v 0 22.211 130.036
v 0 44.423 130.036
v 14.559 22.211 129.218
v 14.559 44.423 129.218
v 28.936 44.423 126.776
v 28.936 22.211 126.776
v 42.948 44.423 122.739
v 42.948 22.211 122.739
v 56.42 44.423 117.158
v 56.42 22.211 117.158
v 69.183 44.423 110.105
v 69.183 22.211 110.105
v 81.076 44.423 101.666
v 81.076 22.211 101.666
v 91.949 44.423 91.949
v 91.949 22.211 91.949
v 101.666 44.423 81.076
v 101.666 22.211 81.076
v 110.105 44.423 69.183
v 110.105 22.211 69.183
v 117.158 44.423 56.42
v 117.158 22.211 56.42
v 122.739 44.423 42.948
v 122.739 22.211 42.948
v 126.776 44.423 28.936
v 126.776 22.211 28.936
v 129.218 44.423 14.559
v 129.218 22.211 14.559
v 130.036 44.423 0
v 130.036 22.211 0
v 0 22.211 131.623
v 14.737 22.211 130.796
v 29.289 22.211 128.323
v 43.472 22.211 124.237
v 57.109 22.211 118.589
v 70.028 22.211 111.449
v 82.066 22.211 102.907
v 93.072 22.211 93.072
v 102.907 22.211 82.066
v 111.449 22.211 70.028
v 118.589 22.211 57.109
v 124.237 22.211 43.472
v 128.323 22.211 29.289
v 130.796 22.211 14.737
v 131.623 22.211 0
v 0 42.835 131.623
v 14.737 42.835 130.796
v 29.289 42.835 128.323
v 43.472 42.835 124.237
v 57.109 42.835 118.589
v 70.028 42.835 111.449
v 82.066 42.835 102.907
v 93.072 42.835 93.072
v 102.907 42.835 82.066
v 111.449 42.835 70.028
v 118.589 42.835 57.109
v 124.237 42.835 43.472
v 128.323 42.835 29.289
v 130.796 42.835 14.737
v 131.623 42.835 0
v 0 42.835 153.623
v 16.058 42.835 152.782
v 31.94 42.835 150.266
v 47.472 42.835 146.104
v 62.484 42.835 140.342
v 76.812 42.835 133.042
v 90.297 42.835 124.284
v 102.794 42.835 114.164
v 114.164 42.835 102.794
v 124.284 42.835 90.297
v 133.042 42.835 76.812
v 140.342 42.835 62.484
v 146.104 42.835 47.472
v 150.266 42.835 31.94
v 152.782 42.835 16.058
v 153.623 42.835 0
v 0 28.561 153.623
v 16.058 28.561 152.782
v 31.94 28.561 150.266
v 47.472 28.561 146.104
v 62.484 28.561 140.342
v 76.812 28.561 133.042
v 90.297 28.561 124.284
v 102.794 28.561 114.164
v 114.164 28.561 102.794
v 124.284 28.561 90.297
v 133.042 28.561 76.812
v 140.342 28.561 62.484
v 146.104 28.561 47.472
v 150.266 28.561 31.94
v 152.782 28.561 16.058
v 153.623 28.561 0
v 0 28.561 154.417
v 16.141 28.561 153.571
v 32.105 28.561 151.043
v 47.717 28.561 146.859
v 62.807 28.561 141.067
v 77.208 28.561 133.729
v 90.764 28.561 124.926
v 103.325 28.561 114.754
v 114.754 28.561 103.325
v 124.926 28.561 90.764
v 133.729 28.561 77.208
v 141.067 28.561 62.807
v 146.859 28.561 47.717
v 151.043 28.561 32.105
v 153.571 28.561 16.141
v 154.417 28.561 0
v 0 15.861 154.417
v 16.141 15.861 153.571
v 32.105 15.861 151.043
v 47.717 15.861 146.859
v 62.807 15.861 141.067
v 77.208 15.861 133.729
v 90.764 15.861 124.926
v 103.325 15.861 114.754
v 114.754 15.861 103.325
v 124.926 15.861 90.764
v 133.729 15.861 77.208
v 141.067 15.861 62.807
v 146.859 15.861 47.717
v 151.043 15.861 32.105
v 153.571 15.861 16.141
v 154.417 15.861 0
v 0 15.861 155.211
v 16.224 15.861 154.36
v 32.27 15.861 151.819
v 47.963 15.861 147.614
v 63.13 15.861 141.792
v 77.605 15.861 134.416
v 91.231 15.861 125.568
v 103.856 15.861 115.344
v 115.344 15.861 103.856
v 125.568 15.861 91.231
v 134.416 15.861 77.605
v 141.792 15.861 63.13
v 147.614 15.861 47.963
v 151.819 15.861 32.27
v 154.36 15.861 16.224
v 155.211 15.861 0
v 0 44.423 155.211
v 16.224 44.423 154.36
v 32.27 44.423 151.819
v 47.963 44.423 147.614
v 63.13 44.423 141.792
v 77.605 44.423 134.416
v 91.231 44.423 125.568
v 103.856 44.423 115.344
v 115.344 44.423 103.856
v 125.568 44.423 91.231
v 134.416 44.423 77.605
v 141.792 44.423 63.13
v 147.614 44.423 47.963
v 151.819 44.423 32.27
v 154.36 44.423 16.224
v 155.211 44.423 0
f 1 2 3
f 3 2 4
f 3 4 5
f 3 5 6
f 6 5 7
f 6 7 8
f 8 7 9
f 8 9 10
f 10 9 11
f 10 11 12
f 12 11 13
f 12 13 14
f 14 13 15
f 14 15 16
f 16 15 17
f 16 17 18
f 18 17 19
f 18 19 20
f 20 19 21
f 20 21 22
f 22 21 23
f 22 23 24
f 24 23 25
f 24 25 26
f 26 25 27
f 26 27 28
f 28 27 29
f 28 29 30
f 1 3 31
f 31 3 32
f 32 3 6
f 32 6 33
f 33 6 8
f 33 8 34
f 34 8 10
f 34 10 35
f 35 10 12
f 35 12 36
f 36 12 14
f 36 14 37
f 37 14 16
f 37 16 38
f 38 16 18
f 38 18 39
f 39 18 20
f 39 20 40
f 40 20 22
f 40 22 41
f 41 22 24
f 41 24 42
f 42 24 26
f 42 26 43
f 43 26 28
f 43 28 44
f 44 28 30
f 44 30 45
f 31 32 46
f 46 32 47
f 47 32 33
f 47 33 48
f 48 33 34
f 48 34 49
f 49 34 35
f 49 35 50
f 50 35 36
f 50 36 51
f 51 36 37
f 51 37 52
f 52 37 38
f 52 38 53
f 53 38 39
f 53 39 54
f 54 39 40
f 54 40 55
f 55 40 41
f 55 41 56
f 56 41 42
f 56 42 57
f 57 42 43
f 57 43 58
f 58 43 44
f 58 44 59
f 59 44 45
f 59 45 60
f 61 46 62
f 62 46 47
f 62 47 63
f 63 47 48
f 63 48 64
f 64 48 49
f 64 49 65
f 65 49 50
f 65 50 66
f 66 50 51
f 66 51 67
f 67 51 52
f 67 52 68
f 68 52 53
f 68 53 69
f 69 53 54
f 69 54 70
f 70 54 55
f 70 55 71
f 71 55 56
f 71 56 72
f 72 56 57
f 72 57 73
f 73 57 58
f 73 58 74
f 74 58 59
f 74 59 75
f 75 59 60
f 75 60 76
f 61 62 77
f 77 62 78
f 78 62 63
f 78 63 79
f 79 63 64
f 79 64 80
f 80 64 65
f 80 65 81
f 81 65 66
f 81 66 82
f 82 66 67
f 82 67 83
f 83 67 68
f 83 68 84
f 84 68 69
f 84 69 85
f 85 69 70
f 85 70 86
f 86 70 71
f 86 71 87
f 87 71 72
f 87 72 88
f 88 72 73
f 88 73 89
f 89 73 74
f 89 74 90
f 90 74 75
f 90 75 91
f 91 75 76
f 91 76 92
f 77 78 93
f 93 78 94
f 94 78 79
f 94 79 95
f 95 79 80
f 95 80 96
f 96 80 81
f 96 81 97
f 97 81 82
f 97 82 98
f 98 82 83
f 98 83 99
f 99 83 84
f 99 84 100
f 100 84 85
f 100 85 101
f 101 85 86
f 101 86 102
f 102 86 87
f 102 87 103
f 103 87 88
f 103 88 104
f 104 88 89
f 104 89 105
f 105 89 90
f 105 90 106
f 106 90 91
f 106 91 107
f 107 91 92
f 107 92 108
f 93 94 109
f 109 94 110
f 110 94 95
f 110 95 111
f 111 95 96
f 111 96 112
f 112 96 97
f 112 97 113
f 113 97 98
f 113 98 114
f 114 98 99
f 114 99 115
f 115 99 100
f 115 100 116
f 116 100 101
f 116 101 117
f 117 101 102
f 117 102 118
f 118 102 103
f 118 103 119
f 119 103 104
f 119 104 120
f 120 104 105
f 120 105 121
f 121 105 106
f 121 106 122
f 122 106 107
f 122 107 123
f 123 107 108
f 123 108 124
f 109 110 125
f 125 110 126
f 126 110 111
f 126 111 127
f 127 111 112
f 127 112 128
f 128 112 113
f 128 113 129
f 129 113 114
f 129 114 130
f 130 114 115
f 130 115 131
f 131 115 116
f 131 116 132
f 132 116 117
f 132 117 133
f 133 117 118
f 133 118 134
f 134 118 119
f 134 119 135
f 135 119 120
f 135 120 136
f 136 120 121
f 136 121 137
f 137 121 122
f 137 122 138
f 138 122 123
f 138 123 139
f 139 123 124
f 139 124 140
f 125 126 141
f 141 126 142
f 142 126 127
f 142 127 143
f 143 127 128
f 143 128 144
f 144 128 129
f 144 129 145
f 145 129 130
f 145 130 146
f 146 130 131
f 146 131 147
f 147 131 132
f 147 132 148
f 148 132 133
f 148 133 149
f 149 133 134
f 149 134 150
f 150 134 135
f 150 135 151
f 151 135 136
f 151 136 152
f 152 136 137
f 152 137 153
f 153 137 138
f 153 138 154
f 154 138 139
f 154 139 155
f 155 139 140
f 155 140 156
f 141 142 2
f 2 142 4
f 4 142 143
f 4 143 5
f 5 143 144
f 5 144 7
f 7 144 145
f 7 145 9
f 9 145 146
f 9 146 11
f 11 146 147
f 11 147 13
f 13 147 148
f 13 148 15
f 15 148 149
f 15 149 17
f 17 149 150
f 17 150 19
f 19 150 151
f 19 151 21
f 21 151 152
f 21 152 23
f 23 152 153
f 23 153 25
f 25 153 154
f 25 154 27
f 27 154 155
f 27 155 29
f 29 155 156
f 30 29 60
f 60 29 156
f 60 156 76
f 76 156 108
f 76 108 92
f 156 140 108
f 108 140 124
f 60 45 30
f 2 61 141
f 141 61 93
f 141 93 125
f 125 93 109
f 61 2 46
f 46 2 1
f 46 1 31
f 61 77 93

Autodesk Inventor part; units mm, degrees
ref_plane "YZ Plane" through (0, 0, 0) normal (1, 0, 0) x (0, 1, 0)
ref_plane "XZ Plane" through (0, 0, 0) normal (0, 1, 0) x (-1, 0, 0)
ref_plane "XY Plane" through (0, 0, 0) normal (0, 0, 1) x (1, 0, 0)
sketch "Sketch1" plane through (0, 0, 0) normal (1, 0, 0) x (0, 1, 0)
  line L0 (0, 0) -> (73.993, 0)
  line L1 (0, 130.0359) -> (44.4227, 130.0359)
  line L2 (0, 130.0359) -> (0, 155.2107)
  line L3 (15.8613, 155.2107) -> (44.4227, 155.2107)
  line L4 (44.4227, 155.2107) -> (44.4227, 130.0359)
  line L5 (1.5875, 153.6232) -> (1.5875, 131.6234)
  line L6 (1.5875, 131.6234) -> (42.8352, 131.6234)
  line L7 (42.8352, 131.6234) -> (42.8352, 153.6232)
  line L8 (18.2426, 143.1015) -> (18.2426, 119.3292)
  line L9 (14.2738, 131.6234) -> (14.2738, 130.0359)
  line L10 (22.2113, 131.6234) -> (22.2113, 130.0359)
  line L11 (22.2113, 167.4765) -> (22.2113, 148.4065)
  line L12 (22.2113, 154.417) -> (28.5613, 154.417)
  line L13 (28.5613, 154.417) -> (28.5613, 153.6232)
  line L14 (22.2113, 154.417) -> (15.8613, 154.417)
  line L15 (15.8613, 154.417) -> (15.8613, 155.2107)
  line L16 (42.8352, 153.6232) -> (28.5613, 153.6232)
  line L17 (18.2426, 153.6232) -> (1.5875, 153.6232)
  dimension "d1" = 25.1748
  dimension "d2" = 130.0359
  dimension "d3" = 44.4227
  dimension "d4" = 0
  dimension "d5" = 1.5875
  dimension "d6" = 1.5875
  dimension "d7" = 1.5875
  dimension "d8" = 1.5875
  dimension "d9" = 18.2426
  dimension "d10" = 7.9375
  dimension "d11" = 3.9688
  dimension "d13" = 22.2113
  dimension "d15" = 6.35
  dimension "d16" = 6.35
revolve "Revolution1" add sketch "Sketch1" angle 90 about axis through (0, 0, 0) along (0, 1, 0) contours L10 L6 L7 L16 L13 L12 L11 L3 L4 L1 | L11 L14 L15 L3
equation "\"d2\" = 0.5 * IBDia - 3 * SpWall"
equation "\"d3\" = Wall + 4 * SpWall + BevDriverDia + d1_1"
equation "\"d5\" = Wall"
equation "\"d6\" = Wall"
equation "\"d7\" = Wall"
equation "\"d8\" = Wall"
equation "\"d9\" = 2 * SpWall + 0.5 * BevDriverDia"
equation "\"d10\" = AxelDia + Space"
equation "\"d11\" = 0.5 * Space + 0.5 * AxelDia"
equation "\"d13\" = 0.5 * d3"
equation "\"IDia\" = 266.7"
equation "\"Wall\" = 1.5875"
equation "\"Space\" = 1.5875"
equation "\"SpWall\" = 3.175"
equation "\"AxelDia\" = 6.35"
equation "\"d14\" = 0.5 * Wall"
equation "\"IBDia\" = 279.121792"
equation "\"BevDriverDia\" = 23.785175"
equation "\"d1_1\" = 6.35"
properties part number "OuterShell_Top_Quarter"
